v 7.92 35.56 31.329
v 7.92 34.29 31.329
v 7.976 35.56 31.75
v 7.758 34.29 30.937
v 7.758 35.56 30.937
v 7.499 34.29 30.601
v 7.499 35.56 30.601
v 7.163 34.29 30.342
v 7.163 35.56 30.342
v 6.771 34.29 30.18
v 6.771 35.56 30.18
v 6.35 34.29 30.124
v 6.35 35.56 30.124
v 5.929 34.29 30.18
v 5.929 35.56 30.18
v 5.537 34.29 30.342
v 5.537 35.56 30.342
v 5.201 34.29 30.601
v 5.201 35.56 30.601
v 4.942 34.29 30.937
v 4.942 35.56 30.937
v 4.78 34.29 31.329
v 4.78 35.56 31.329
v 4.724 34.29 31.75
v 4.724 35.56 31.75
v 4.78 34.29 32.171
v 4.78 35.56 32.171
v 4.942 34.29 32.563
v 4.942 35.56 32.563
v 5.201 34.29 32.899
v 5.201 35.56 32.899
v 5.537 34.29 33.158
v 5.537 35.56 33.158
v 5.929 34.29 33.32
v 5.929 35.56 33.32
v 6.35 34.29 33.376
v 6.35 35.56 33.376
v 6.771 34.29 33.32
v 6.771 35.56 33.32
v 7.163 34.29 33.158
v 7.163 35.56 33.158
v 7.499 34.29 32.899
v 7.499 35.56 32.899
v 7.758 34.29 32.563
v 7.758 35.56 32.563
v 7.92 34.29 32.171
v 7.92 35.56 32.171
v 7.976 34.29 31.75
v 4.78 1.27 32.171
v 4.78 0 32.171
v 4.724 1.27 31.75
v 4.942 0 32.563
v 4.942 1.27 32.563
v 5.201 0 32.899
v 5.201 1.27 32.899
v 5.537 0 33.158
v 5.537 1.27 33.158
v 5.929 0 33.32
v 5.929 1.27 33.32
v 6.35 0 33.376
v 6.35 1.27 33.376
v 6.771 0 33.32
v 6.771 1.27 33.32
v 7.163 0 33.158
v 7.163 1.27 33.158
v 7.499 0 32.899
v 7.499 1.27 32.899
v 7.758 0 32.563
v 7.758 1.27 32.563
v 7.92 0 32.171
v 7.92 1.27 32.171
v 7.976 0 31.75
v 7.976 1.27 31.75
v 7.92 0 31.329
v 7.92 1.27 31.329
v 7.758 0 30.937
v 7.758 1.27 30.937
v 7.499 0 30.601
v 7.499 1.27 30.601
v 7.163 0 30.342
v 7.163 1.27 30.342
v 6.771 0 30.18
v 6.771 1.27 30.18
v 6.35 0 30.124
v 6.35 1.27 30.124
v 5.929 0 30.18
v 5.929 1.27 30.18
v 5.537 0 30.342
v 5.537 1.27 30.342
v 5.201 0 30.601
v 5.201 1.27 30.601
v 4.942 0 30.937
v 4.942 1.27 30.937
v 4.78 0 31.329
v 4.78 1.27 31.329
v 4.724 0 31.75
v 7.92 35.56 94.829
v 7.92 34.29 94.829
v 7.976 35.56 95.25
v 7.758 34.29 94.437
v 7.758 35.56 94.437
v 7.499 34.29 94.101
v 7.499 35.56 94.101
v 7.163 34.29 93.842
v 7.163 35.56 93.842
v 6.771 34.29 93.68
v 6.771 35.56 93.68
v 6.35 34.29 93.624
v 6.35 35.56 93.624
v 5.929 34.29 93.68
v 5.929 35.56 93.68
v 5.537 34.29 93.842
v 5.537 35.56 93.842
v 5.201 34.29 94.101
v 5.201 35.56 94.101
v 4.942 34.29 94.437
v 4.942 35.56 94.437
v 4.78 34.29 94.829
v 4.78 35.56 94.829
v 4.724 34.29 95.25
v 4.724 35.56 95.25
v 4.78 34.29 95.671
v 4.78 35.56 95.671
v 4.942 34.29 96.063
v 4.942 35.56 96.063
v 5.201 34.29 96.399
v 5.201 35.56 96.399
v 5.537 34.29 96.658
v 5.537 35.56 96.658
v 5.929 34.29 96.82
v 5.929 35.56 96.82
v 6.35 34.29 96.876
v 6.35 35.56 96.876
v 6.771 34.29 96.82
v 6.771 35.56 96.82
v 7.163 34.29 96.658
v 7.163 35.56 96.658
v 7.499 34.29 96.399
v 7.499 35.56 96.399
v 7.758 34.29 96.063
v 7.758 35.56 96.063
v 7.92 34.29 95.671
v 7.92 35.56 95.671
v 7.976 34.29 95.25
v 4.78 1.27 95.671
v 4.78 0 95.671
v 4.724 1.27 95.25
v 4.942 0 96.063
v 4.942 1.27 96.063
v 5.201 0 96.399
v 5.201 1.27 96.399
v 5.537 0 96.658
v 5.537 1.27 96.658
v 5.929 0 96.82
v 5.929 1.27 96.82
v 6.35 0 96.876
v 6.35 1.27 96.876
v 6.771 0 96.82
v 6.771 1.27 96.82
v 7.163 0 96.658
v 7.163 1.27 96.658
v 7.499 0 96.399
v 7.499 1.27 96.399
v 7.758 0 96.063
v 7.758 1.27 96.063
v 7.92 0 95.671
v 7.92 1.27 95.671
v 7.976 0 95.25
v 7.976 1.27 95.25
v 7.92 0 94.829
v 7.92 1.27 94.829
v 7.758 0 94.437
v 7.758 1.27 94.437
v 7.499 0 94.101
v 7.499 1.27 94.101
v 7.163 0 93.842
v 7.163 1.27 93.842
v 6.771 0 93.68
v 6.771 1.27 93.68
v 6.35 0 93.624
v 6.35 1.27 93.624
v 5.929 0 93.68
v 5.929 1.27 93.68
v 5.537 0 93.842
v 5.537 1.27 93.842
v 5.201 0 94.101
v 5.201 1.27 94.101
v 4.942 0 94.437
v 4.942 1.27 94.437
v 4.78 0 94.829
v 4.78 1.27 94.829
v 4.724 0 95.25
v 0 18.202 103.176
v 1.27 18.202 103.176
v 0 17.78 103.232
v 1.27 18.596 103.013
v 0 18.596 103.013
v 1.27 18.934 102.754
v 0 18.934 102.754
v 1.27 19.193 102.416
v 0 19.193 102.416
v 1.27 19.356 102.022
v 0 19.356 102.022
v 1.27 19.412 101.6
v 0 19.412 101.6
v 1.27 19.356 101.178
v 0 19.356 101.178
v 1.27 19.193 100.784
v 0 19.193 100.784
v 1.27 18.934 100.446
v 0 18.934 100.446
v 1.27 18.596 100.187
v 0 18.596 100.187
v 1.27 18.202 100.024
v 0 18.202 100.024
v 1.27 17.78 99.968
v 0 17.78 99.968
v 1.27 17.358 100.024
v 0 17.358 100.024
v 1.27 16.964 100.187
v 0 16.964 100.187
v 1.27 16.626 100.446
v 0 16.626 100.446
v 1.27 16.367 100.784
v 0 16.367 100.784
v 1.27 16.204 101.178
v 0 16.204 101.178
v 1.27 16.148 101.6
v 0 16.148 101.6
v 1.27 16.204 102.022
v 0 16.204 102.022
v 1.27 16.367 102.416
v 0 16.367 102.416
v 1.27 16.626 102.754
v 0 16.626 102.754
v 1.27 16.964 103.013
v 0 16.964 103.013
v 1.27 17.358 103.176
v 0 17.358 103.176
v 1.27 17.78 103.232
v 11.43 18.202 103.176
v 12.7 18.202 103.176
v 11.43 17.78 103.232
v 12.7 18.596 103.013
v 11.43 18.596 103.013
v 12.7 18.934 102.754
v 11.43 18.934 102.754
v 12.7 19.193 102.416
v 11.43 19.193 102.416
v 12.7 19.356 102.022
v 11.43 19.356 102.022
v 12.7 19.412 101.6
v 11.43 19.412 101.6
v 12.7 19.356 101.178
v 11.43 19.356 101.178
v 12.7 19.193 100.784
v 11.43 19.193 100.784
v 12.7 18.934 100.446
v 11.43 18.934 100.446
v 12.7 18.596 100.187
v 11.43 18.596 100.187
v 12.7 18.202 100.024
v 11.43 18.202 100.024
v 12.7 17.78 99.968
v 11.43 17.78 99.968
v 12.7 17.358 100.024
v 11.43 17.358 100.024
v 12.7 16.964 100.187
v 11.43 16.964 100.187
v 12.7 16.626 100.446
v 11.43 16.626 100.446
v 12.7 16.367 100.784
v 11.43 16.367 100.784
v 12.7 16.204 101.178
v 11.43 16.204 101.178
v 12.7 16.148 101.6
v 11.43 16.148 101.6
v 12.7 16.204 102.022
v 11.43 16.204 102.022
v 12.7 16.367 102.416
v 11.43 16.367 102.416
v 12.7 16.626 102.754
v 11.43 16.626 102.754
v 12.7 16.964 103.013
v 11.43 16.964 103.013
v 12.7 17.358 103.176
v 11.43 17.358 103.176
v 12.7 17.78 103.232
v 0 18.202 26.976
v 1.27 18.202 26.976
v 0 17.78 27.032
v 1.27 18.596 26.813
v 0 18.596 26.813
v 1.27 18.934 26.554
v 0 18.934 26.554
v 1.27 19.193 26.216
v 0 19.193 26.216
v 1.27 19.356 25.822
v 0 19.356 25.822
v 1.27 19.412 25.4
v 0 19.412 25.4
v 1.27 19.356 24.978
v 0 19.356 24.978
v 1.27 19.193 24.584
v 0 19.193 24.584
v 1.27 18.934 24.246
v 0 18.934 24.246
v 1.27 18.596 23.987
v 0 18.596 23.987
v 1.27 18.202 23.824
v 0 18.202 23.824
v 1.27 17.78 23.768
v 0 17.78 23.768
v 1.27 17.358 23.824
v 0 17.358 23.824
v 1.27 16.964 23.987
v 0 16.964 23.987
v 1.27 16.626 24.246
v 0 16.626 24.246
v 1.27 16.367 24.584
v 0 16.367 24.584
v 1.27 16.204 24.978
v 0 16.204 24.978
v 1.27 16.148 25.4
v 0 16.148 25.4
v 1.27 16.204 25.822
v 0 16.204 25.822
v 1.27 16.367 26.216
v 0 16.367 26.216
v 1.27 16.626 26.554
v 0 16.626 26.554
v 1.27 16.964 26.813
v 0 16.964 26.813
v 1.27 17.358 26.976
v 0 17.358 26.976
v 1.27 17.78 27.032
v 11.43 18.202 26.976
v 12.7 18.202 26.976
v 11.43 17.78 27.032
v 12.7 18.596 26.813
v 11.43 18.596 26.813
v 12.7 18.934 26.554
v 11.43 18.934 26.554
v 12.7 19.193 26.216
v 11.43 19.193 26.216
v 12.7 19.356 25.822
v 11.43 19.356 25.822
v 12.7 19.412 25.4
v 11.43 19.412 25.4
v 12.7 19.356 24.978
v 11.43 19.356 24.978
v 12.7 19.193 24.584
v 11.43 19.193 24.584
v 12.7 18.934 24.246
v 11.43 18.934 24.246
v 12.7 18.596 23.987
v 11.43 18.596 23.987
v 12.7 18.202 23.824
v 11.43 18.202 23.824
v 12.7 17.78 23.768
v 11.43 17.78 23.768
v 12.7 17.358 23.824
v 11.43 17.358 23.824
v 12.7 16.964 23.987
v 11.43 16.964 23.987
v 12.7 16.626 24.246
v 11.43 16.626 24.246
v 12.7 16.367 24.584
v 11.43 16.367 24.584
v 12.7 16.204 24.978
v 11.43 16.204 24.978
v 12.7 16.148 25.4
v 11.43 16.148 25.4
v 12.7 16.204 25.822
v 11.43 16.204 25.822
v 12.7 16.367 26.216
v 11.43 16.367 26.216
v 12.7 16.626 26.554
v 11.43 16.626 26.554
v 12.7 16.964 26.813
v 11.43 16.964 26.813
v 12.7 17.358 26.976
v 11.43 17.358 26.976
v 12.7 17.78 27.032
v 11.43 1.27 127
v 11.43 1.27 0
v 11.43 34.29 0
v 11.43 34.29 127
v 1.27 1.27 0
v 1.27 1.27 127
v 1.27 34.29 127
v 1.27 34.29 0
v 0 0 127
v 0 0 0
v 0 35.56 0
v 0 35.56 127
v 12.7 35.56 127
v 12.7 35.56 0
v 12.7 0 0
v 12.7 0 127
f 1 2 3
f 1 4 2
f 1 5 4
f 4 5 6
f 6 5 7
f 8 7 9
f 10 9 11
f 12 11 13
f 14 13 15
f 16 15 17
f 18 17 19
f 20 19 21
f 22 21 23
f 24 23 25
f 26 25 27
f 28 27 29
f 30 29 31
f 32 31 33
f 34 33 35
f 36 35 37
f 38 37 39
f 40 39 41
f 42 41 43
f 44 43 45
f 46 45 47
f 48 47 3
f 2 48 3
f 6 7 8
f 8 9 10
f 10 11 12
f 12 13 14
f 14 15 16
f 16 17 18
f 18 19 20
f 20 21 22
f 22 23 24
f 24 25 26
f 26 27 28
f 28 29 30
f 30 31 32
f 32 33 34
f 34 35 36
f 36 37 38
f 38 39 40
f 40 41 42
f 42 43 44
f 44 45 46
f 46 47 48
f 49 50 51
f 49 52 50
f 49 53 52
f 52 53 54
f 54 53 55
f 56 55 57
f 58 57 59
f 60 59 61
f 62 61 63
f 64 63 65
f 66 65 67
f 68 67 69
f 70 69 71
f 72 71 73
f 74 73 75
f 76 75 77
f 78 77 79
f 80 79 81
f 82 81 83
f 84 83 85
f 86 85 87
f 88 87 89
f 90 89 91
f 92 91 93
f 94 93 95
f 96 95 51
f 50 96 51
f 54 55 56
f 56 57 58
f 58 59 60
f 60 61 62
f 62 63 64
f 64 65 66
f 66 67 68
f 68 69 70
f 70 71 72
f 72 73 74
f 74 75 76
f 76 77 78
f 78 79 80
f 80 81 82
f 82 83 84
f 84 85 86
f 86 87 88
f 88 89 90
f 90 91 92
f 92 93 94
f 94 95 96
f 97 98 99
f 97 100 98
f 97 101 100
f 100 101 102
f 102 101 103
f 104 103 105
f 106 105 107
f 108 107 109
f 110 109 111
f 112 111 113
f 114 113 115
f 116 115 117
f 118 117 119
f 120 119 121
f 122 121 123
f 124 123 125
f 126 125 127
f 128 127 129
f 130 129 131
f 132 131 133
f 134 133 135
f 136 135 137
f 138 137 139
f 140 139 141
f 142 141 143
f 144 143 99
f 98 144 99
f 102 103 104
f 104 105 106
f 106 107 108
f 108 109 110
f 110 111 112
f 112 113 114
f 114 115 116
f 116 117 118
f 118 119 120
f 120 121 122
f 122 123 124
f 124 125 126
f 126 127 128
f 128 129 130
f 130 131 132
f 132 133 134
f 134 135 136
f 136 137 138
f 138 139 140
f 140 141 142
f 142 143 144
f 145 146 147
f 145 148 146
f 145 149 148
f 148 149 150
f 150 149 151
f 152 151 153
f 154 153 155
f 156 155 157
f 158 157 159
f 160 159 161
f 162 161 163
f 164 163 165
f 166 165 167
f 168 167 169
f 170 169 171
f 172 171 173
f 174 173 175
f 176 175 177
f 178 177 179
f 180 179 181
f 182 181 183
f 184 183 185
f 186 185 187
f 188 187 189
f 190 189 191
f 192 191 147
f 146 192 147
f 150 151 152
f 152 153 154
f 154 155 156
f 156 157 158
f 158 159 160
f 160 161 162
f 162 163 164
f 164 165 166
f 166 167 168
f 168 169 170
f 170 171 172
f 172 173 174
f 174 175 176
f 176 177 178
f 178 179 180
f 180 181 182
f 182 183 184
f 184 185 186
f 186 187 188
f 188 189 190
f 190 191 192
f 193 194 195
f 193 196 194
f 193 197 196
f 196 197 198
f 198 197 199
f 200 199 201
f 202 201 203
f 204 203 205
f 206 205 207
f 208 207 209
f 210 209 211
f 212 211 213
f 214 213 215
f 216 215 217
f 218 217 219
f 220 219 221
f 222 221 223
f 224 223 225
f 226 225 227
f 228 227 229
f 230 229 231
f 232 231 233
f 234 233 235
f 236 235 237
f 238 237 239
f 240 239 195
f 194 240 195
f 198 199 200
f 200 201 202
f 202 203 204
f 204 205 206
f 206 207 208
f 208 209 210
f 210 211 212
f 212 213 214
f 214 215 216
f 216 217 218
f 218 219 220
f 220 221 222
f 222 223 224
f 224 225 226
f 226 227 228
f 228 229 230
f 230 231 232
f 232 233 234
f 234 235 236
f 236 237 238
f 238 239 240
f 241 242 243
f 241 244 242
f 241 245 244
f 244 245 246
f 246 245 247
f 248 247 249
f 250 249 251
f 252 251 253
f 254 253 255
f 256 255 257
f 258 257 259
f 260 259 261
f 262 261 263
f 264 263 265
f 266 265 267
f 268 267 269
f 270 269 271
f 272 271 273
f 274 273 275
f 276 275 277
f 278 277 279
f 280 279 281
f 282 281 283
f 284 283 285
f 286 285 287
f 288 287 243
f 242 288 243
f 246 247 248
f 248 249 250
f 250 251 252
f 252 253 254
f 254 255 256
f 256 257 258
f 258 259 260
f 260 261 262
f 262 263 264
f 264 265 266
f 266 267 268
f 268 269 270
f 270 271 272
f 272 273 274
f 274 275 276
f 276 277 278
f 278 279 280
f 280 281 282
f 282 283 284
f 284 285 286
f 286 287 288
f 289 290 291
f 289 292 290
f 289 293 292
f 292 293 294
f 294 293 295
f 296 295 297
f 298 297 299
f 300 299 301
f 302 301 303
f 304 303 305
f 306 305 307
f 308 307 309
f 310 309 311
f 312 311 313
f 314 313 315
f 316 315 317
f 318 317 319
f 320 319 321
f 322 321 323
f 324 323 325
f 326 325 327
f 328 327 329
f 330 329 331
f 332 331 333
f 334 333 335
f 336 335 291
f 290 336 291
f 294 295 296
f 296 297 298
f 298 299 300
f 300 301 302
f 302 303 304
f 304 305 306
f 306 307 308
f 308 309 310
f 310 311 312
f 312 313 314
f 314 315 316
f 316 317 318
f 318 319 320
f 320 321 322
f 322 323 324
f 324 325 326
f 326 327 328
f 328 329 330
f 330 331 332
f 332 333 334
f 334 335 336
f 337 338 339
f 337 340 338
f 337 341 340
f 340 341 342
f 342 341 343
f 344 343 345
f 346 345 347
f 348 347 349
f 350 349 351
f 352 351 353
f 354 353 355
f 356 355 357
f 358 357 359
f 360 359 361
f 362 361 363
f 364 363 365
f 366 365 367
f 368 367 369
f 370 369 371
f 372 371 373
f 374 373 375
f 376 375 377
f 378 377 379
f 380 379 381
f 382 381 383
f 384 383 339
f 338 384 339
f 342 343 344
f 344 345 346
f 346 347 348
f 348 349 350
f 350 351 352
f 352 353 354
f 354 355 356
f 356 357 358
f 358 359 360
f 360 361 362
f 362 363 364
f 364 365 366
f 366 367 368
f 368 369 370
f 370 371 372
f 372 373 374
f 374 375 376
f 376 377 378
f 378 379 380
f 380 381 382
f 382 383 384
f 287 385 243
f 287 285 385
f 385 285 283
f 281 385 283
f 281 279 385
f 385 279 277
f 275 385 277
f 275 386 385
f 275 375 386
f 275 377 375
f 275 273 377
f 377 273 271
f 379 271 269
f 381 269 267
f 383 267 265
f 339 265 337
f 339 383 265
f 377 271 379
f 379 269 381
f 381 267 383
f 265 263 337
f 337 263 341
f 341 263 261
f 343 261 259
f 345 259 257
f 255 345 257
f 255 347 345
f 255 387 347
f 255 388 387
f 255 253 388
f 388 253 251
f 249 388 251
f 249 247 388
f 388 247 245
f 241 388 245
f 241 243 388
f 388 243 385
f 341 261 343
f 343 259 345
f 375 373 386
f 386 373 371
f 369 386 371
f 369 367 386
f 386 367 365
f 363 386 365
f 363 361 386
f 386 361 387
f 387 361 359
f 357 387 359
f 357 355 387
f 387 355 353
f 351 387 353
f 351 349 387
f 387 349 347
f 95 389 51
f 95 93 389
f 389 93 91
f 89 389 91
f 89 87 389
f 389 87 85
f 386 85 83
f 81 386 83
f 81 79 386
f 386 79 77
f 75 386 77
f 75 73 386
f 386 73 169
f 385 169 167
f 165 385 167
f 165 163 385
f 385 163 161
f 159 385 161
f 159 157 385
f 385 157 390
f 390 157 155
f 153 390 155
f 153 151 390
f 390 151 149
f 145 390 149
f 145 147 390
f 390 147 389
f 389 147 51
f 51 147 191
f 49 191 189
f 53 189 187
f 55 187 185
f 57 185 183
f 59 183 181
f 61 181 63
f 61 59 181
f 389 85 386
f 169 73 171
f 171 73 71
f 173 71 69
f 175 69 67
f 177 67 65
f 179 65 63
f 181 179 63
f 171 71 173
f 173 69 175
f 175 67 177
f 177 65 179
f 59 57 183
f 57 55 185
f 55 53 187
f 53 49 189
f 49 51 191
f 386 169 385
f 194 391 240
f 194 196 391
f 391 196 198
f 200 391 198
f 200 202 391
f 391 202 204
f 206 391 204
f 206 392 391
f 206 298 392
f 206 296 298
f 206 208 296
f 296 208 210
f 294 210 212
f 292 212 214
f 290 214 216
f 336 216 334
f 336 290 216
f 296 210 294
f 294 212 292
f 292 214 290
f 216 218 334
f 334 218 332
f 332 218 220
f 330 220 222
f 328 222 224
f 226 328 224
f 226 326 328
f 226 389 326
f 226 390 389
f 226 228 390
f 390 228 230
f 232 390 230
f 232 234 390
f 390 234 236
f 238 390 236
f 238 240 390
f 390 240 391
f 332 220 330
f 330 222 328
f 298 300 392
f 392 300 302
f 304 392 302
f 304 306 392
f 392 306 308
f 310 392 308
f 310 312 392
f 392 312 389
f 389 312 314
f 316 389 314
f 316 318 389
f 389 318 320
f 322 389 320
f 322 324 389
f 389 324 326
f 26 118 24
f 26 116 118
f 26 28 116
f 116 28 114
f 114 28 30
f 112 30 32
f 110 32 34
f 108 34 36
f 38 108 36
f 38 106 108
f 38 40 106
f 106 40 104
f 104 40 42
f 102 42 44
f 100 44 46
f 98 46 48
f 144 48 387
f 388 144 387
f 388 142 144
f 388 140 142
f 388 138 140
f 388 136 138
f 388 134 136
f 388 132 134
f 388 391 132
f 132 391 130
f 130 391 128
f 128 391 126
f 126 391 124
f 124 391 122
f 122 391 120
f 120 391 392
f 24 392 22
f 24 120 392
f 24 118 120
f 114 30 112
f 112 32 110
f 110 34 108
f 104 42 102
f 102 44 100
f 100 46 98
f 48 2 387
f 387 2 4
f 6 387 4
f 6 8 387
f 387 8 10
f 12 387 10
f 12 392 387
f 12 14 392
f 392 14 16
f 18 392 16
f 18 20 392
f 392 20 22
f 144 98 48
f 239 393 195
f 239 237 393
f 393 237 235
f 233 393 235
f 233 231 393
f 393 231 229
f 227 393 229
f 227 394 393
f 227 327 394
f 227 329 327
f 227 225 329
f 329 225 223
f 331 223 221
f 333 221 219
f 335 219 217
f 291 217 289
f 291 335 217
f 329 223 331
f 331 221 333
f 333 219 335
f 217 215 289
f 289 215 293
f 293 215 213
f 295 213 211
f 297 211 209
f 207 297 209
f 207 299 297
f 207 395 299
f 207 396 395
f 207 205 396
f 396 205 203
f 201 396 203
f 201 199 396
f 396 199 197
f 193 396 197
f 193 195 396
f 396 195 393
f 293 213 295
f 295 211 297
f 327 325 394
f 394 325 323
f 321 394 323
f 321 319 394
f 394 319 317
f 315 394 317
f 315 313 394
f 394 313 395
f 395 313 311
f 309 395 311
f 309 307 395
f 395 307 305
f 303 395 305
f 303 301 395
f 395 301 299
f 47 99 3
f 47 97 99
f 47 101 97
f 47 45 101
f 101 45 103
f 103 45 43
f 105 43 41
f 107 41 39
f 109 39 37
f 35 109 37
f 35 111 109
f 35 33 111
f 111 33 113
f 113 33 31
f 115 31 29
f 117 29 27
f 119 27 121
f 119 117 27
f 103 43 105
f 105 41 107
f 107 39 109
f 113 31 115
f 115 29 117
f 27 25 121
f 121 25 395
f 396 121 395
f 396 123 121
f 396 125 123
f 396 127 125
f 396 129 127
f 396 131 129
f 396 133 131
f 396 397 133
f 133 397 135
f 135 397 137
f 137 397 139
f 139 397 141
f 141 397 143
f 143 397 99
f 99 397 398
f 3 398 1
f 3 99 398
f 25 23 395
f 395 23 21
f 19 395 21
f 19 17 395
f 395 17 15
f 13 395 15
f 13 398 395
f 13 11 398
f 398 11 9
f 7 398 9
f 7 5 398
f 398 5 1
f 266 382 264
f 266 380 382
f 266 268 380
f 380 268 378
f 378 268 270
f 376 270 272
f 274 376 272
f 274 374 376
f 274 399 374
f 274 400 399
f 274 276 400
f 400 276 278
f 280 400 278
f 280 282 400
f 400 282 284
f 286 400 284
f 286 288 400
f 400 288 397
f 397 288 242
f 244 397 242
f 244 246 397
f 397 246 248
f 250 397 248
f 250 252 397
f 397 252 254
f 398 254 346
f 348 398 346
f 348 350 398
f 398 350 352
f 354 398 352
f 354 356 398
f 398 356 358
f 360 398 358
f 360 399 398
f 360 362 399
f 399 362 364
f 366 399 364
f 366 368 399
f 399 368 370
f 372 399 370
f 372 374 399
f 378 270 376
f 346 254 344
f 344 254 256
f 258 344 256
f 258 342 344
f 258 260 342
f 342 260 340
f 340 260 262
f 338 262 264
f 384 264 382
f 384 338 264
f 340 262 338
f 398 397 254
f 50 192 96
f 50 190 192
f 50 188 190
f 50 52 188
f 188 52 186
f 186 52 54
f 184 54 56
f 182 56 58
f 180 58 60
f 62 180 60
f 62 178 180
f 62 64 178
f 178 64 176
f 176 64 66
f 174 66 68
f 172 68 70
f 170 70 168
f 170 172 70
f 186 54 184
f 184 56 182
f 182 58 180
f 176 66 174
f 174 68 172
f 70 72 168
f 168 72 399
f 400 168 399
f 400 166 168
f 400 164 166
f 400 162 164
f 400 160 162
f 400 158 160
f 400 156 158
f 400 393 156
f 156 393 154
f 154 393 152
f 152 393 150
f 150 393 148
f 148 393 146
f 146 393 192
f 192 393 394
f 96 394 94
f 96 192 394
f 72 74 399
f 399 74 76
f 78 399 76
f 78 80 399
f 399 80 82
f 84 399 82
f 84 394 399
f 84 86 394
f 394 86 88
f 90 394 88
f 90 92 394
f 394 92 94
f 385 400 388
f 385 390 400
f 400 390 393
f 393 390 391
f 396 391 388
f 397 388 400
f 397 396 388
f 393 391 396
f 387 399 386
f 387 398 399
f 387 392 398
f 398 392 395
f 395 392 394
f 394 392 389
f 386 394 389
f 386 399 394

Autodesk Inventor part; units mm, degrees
ref_plane "YZ Plane" through (0, 0, 0) normal (1, 0, 0) x (0, 1, 0)
ref_plane "XZ Plane" through (0, 0, 0) normal (0, 1, 0) x (-1, 0, 0)
ref_plane "XY Plane" through (0, 0, 0) normal (0, 0, 1) x (1, 0, 0)
sketch "Sketch1" plane through (0, 0, 0) normal (0, 0, 1) x (1, 0, 0)
  line L0 (0, 0) -> (12.7, 0)
  line L1 (12.7, 0) -> (12.7, 35.56)
  line L2 (12.7, 35.56) -> (0, 35.56)
  line L3 (0, 35.56) -> (0, 0)
  line L4 (1.27, 34.29) -> (11.43, 34.29)
  line L5 (11.43, 34.29) -> (11.43, 1.27)
  line L6 (11.43, 1.27) -> (1.27, 1.27)
  line L7 (1.27, 1.27) -> (1.27, 34.29)
  dimension "d0" = 35.56
  dimension "d1" = 12.7
  dimension "d2" = 1.27
extrude "Extrusion1" add sketch "Sketch1" along normal blind 127
sketch "Sketch2" plane through (12.7, 0, 0) normal (1, 0, 0) x (0, 0, -1)
  line L0 (-168.1044, 17.78) -> (-15.152, 17.78) construction
  line L1 (0, 0) -> (-127, 0) construction
  line L2 (-127, 0) -> (-127, 35.56) projected
  line L3 (0, 0) -> (0, 35.56) projected
  point P0 (-101.6, 17.78)
  point P1 (-25.4, 17.78)
  dimension "d5" = 17.78
  dimension "d6" = 25.4
  dimension "d7" = 25.4
hole "Hole1" at (12.7, 17.78, 101.6) at (12.7, 17.78, 25.4) direction (-1, 0, 0) diameter 3.2639 end through all
sketch "Sketch4" plane through (0, 35.56, 0) normal (0, 1, 0) x (1, 0, 0)
  line L0 (6.35, 23.2485) -> (6.35, -226.9955) construction
  line L1 (12.7, 0) -> (12.7, -127) construction
  line L2 (12.7, 0) -> (0, 0) projected
  line L3 (0, 0) -> (0, -127) projected
  line L4 (12.7, -127) -> (0, -127) projected
  line L5 (12.7, 0) -> (12.7, -127) projected
  point P0 (0, 0)
  point P1 (6.35, -31.75)
  point P2 (6.35, -95.25)
  dimension "d27" = 6.35
  dimension "d28" = 31.75
  dimension "d29" = 31.75
hole "Hole3" at (6.35, 35.56, 31.75) at (6.35, 35.56, 95.25) direction (0, -1, 0) diameter 3.2512 end through all
properties part number "000101"
